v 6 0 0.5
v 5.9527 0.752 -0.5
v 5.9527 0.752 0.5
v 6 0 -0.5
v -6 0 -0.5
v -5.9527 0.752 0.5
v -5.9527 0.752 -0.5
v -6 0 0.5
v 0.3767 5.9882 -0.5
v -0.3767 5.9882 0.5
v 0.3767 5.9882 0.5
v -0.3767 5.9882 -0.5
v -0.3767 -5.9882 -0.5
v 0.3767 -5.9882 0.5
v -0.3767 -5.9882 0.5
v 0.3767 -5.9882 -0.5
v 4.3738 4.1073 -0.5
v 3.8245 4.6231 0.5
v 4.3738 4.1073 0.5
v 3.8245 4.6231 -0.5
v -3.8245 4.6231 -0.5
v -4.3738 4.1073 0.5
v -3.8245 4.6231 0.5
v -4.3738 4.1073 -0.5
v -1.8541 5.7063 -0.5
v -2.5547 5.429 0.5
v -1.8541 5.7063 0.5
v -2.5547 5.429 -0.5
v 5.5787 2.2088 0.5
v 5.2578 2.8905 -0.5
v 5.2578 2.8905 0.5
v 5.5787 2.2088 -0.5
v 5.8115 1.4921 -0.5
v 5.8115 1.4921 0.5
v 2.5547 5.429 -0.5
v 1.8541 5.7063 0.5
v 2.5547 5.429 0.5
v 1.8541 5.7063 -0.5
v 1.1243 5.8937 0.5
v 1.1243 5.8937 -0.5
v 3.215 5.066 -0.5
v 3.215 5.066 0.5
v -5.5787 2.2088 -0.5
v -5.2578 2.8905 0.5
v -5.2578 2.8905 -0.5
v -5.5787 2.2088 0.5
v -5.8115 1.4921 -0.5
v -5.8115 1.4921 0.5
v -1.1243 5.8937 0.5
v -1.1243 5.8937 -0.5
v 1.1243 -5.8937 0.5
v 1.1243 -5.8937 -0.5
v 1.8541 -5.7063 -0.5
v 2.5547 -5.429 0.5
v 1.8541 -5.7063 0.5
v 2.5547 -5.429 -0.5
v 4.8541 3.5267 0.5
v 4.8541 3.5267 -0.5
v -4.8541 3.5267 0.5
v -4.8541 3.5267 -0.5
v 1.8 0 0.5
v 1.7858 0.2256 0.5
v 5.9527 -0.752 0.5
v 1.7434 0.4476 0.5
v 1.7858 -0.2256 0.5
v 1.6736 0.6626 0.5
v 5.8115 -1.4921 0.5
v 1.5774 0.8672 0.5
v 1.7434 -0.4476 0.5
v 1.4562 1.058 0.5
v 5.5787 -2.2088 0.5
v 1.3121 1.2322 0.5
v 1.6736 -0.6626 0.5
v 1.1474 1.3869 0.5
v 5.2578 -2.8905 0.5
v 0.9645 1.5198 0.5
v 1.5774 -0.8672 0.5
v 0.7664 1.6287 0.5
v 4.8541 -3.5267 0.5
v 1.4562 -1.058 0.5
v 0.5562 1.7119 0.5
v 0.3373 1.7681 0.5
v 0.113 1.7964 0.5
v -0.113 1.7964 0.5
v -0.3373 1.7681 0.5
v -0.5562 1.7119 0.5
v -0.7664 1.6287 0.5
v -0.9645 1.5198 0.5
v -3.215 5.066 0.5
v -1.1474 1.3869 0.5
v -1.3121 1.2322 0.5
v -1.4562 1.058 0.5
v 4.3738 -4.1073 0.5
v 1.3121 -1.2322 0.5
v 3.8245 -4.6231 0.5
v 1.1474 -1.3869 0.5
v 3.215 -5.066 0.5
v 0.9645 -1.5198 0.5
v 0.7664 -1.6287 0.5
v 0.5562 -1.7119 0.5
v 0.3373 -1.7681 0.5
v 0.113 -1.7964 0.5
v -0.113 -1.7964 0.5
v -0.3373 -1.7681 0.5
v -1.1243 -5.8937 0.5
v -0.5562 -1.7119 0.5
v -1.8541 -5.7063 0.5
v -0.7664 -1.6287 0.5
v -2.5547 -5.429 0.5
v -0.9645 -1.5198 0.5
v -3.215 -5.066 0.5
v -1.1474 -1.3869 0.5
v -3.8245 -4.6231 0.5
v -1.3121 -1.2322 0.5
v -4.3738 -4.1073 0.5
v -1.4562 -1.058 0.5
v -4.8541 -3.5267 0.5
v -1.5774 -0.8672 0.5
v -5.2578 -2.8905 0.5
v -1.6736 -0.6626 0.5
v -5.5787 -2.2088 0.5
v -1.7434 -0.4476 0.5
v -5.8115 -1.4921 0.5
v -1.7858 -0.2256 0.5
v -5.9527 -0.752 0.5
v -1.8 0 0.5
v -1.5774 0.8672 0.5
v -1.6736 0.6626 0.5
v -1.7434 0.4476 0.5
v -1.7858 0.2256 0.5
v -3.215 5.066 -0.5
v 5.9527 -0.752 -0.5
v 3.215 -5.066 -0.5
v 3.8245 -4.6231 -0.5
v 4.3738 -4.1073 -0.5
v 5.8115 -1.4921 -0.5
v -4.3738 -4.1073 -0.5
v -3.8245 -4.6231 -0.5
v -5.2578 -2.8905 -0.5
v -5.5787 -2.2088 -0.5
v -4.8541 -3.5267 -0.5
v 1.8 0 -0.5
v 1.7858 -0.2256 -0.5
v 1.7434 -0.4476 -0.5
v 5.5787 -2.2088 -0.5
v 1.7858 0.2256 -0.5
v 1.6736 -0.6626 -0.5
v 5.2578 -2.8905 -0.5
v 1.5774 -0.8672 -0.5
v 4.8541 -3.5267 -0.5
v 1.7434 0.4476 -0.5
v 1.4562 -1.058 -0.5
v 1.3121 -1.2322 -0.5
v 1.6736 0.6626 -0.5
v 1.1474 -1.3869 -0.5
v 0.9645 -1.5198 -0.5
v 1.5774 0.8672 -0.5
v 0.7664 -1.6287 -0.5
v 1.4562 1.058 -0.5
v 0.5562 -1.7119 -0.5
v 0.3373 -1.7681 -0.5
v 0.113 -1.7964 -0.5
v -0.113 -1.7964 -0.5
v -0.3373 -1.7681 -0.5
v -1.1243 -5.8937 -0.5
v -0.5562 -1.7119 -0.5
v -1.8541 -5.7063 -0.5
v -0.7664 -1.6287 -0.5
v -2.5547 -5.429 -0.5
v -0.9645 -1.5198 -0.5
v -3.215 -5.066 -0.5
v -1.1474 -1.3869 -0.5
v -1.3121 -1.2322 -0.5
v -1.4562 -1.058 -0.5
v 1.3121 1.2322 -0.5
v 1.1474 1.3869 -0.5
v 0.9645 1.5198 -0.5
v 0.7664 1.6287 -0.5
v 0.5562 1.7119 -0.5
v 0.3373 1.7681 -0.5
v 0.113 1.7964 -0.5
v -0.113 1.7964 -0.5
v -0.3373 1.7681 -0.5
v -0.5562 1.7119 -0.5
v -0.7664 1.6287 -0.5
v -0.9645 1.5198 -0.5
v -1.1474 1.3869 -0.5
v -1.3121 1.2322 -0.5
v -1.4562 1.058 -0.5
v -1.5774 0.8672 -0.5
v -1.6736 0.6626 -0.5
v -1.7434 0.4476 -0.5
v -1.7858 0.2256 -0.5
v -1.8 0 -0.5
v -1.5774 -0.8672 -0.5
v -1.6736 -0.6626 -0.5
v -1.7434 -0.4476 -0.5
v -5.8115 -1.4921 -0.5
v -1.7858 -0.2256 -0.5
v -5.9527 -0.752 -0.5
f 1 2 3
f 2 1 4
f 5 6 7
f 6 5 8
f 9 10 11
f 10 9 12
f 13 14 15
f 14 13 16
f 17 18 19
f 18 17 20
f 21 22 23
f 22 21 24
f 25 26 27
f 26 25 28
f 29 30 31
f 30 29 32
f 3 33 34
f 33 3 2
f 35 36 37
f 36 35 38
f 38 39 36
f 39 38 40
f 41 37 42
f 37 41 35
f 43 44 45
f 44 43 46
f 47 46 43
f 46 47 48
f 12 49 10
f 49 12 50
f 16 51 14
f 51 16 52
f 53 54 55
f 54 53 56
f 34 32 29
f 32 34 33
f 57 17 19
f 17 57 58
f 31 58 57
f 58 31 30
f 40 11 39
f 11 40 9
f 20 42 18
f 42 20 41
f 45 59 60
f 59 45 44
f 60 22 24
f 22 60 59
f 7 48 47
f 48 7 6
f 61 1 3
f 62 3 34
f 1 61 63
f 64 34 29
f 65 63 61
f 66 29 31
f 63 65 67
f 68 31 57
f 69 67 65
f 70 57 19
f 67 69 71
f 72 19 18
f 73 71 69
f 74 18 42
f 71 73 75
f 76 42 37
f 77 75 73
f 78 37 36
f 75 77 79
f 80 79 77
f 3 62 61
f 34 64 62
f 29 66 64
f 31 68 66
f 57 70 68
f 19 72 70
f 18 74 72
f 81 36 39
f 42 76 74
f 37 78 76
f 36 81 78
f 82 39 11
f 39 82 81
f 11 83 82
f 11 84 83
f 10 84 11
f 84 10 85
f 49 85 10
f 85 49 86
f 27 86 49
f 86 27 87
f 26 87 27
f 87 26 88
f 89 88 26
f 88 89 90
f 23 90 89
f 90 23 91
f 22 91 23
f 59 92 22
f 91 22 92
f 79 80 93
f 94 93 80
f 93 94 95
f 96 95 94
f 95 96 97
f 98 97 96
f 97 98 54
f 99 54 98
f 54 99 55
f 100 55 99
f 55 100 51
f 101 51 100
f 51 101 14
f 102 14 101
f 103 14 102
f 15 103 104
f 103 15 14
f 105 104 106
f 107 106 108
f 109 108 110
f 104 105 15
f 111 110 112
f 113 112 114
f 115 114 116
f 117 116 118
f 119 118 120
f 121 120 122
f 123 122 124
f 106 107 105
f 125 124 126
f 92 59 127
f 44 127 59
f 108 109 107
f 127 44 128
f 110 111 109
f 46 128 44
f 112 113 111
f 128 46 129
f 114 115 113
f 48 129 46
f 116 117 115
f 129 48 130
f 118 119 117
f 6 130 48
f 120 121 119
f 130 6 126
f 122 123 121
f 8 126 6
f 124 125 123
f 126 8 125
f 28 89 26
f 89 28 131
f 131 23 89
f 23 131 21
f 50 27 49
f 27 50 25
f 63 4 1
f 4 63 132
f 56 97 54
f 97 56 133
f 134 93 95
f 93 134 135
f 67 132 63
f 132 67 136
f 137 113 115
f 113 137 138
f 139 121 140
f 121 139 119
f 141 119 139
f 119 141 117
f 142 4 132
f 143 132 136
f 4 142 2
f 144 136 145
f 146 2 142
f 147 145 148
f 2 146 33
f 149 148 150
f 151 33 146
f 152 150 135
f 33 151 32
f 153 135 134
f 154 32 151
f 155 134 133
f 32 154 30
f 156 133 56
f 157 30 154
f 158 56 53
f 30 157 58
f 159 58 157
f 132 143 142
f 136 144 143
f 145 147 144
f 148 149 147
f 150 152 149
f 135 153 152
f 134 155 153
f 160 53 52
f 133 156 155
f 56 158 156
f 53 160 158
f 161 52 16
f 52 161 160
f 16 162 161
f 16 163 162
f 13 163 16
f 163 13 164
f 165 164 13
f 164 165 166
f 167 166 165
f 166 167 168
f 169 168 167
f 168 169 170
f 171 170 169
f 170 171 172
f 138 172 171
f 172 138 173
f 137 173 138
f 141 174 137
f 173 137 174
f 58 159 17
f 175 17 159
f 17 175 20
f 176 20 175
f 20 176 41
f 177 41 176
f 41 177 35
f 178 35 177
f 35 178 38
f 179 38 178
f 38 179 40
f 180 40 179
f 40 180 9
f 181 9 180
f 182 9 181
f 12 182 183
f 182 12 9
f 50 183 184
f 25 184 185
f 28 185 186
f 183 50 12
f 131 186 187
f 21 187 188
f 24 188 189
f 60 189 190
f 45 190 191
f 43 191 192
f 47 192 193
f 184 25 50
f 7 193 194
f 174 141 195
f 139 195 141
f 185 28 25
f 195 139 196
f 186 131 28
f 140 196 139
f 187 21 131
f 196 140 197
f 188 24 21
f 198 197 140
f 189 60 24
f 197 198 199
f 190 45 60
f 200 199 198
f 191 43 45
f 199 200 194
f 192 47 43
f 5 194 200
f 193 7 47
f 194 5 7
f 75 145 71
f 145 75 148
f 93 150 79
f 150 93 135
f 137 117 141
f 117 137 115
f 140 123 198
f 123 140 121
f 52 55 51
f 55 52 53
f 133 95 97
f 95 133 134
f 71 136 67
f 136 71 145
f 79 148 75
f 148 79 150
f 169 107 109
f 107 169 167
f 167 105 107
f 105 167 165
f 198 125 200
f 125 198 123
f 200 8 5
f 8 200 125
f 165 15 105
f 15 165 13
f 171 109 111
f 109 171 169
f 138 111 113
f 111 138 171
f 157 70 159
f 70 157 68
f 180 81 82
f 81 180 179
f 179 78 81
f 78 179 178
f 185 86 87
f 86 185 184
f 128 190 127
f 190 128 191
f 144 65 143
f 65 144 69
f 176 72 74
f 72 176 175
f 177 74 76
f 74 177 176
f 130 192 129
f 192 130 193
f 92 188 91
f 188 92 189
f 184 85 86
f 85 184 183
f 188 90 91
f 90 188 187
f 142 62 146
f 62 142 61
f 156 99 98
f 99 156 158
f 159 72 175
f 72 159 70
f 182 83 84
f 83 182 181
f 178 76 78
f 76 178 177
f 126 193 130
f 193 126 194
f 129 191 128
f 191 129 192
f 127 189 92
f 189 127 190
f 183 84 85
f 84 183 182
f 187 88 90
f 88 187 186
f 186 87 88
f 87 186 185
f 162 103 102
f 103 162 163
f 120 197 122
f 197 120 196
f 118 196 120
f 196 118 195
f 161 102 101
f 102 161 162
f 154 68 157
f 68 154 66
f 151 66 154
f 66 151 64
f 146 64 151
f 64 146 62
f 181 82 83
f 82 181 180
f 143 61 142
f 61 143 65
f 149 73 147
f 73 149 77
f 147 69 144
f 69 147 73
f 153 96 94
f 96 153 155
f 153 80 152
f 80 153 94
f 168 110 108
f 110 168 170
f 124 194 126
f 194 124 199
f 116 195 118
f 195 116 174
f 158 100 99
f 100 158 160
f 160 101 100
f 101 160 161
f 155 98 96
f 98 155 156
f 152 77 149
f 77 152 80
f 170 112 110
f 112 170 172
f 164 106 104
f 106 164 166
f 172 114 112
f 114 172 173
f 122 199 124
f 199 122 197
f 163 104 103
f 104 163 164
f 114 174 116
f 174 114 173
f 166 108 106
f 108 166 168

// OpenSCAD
$fn = 50;


difference() {
	union() {
		translate(v = [0, 0, -0.5000000000]) {
			cylinder(h = 1, r = 6.0000000000);
		}
	}
	union() {
		translate(v = [0, 0, -100.0000000000]) {
			cylinder(h = 200, r = 1.8000000000);
		}
	}
}
